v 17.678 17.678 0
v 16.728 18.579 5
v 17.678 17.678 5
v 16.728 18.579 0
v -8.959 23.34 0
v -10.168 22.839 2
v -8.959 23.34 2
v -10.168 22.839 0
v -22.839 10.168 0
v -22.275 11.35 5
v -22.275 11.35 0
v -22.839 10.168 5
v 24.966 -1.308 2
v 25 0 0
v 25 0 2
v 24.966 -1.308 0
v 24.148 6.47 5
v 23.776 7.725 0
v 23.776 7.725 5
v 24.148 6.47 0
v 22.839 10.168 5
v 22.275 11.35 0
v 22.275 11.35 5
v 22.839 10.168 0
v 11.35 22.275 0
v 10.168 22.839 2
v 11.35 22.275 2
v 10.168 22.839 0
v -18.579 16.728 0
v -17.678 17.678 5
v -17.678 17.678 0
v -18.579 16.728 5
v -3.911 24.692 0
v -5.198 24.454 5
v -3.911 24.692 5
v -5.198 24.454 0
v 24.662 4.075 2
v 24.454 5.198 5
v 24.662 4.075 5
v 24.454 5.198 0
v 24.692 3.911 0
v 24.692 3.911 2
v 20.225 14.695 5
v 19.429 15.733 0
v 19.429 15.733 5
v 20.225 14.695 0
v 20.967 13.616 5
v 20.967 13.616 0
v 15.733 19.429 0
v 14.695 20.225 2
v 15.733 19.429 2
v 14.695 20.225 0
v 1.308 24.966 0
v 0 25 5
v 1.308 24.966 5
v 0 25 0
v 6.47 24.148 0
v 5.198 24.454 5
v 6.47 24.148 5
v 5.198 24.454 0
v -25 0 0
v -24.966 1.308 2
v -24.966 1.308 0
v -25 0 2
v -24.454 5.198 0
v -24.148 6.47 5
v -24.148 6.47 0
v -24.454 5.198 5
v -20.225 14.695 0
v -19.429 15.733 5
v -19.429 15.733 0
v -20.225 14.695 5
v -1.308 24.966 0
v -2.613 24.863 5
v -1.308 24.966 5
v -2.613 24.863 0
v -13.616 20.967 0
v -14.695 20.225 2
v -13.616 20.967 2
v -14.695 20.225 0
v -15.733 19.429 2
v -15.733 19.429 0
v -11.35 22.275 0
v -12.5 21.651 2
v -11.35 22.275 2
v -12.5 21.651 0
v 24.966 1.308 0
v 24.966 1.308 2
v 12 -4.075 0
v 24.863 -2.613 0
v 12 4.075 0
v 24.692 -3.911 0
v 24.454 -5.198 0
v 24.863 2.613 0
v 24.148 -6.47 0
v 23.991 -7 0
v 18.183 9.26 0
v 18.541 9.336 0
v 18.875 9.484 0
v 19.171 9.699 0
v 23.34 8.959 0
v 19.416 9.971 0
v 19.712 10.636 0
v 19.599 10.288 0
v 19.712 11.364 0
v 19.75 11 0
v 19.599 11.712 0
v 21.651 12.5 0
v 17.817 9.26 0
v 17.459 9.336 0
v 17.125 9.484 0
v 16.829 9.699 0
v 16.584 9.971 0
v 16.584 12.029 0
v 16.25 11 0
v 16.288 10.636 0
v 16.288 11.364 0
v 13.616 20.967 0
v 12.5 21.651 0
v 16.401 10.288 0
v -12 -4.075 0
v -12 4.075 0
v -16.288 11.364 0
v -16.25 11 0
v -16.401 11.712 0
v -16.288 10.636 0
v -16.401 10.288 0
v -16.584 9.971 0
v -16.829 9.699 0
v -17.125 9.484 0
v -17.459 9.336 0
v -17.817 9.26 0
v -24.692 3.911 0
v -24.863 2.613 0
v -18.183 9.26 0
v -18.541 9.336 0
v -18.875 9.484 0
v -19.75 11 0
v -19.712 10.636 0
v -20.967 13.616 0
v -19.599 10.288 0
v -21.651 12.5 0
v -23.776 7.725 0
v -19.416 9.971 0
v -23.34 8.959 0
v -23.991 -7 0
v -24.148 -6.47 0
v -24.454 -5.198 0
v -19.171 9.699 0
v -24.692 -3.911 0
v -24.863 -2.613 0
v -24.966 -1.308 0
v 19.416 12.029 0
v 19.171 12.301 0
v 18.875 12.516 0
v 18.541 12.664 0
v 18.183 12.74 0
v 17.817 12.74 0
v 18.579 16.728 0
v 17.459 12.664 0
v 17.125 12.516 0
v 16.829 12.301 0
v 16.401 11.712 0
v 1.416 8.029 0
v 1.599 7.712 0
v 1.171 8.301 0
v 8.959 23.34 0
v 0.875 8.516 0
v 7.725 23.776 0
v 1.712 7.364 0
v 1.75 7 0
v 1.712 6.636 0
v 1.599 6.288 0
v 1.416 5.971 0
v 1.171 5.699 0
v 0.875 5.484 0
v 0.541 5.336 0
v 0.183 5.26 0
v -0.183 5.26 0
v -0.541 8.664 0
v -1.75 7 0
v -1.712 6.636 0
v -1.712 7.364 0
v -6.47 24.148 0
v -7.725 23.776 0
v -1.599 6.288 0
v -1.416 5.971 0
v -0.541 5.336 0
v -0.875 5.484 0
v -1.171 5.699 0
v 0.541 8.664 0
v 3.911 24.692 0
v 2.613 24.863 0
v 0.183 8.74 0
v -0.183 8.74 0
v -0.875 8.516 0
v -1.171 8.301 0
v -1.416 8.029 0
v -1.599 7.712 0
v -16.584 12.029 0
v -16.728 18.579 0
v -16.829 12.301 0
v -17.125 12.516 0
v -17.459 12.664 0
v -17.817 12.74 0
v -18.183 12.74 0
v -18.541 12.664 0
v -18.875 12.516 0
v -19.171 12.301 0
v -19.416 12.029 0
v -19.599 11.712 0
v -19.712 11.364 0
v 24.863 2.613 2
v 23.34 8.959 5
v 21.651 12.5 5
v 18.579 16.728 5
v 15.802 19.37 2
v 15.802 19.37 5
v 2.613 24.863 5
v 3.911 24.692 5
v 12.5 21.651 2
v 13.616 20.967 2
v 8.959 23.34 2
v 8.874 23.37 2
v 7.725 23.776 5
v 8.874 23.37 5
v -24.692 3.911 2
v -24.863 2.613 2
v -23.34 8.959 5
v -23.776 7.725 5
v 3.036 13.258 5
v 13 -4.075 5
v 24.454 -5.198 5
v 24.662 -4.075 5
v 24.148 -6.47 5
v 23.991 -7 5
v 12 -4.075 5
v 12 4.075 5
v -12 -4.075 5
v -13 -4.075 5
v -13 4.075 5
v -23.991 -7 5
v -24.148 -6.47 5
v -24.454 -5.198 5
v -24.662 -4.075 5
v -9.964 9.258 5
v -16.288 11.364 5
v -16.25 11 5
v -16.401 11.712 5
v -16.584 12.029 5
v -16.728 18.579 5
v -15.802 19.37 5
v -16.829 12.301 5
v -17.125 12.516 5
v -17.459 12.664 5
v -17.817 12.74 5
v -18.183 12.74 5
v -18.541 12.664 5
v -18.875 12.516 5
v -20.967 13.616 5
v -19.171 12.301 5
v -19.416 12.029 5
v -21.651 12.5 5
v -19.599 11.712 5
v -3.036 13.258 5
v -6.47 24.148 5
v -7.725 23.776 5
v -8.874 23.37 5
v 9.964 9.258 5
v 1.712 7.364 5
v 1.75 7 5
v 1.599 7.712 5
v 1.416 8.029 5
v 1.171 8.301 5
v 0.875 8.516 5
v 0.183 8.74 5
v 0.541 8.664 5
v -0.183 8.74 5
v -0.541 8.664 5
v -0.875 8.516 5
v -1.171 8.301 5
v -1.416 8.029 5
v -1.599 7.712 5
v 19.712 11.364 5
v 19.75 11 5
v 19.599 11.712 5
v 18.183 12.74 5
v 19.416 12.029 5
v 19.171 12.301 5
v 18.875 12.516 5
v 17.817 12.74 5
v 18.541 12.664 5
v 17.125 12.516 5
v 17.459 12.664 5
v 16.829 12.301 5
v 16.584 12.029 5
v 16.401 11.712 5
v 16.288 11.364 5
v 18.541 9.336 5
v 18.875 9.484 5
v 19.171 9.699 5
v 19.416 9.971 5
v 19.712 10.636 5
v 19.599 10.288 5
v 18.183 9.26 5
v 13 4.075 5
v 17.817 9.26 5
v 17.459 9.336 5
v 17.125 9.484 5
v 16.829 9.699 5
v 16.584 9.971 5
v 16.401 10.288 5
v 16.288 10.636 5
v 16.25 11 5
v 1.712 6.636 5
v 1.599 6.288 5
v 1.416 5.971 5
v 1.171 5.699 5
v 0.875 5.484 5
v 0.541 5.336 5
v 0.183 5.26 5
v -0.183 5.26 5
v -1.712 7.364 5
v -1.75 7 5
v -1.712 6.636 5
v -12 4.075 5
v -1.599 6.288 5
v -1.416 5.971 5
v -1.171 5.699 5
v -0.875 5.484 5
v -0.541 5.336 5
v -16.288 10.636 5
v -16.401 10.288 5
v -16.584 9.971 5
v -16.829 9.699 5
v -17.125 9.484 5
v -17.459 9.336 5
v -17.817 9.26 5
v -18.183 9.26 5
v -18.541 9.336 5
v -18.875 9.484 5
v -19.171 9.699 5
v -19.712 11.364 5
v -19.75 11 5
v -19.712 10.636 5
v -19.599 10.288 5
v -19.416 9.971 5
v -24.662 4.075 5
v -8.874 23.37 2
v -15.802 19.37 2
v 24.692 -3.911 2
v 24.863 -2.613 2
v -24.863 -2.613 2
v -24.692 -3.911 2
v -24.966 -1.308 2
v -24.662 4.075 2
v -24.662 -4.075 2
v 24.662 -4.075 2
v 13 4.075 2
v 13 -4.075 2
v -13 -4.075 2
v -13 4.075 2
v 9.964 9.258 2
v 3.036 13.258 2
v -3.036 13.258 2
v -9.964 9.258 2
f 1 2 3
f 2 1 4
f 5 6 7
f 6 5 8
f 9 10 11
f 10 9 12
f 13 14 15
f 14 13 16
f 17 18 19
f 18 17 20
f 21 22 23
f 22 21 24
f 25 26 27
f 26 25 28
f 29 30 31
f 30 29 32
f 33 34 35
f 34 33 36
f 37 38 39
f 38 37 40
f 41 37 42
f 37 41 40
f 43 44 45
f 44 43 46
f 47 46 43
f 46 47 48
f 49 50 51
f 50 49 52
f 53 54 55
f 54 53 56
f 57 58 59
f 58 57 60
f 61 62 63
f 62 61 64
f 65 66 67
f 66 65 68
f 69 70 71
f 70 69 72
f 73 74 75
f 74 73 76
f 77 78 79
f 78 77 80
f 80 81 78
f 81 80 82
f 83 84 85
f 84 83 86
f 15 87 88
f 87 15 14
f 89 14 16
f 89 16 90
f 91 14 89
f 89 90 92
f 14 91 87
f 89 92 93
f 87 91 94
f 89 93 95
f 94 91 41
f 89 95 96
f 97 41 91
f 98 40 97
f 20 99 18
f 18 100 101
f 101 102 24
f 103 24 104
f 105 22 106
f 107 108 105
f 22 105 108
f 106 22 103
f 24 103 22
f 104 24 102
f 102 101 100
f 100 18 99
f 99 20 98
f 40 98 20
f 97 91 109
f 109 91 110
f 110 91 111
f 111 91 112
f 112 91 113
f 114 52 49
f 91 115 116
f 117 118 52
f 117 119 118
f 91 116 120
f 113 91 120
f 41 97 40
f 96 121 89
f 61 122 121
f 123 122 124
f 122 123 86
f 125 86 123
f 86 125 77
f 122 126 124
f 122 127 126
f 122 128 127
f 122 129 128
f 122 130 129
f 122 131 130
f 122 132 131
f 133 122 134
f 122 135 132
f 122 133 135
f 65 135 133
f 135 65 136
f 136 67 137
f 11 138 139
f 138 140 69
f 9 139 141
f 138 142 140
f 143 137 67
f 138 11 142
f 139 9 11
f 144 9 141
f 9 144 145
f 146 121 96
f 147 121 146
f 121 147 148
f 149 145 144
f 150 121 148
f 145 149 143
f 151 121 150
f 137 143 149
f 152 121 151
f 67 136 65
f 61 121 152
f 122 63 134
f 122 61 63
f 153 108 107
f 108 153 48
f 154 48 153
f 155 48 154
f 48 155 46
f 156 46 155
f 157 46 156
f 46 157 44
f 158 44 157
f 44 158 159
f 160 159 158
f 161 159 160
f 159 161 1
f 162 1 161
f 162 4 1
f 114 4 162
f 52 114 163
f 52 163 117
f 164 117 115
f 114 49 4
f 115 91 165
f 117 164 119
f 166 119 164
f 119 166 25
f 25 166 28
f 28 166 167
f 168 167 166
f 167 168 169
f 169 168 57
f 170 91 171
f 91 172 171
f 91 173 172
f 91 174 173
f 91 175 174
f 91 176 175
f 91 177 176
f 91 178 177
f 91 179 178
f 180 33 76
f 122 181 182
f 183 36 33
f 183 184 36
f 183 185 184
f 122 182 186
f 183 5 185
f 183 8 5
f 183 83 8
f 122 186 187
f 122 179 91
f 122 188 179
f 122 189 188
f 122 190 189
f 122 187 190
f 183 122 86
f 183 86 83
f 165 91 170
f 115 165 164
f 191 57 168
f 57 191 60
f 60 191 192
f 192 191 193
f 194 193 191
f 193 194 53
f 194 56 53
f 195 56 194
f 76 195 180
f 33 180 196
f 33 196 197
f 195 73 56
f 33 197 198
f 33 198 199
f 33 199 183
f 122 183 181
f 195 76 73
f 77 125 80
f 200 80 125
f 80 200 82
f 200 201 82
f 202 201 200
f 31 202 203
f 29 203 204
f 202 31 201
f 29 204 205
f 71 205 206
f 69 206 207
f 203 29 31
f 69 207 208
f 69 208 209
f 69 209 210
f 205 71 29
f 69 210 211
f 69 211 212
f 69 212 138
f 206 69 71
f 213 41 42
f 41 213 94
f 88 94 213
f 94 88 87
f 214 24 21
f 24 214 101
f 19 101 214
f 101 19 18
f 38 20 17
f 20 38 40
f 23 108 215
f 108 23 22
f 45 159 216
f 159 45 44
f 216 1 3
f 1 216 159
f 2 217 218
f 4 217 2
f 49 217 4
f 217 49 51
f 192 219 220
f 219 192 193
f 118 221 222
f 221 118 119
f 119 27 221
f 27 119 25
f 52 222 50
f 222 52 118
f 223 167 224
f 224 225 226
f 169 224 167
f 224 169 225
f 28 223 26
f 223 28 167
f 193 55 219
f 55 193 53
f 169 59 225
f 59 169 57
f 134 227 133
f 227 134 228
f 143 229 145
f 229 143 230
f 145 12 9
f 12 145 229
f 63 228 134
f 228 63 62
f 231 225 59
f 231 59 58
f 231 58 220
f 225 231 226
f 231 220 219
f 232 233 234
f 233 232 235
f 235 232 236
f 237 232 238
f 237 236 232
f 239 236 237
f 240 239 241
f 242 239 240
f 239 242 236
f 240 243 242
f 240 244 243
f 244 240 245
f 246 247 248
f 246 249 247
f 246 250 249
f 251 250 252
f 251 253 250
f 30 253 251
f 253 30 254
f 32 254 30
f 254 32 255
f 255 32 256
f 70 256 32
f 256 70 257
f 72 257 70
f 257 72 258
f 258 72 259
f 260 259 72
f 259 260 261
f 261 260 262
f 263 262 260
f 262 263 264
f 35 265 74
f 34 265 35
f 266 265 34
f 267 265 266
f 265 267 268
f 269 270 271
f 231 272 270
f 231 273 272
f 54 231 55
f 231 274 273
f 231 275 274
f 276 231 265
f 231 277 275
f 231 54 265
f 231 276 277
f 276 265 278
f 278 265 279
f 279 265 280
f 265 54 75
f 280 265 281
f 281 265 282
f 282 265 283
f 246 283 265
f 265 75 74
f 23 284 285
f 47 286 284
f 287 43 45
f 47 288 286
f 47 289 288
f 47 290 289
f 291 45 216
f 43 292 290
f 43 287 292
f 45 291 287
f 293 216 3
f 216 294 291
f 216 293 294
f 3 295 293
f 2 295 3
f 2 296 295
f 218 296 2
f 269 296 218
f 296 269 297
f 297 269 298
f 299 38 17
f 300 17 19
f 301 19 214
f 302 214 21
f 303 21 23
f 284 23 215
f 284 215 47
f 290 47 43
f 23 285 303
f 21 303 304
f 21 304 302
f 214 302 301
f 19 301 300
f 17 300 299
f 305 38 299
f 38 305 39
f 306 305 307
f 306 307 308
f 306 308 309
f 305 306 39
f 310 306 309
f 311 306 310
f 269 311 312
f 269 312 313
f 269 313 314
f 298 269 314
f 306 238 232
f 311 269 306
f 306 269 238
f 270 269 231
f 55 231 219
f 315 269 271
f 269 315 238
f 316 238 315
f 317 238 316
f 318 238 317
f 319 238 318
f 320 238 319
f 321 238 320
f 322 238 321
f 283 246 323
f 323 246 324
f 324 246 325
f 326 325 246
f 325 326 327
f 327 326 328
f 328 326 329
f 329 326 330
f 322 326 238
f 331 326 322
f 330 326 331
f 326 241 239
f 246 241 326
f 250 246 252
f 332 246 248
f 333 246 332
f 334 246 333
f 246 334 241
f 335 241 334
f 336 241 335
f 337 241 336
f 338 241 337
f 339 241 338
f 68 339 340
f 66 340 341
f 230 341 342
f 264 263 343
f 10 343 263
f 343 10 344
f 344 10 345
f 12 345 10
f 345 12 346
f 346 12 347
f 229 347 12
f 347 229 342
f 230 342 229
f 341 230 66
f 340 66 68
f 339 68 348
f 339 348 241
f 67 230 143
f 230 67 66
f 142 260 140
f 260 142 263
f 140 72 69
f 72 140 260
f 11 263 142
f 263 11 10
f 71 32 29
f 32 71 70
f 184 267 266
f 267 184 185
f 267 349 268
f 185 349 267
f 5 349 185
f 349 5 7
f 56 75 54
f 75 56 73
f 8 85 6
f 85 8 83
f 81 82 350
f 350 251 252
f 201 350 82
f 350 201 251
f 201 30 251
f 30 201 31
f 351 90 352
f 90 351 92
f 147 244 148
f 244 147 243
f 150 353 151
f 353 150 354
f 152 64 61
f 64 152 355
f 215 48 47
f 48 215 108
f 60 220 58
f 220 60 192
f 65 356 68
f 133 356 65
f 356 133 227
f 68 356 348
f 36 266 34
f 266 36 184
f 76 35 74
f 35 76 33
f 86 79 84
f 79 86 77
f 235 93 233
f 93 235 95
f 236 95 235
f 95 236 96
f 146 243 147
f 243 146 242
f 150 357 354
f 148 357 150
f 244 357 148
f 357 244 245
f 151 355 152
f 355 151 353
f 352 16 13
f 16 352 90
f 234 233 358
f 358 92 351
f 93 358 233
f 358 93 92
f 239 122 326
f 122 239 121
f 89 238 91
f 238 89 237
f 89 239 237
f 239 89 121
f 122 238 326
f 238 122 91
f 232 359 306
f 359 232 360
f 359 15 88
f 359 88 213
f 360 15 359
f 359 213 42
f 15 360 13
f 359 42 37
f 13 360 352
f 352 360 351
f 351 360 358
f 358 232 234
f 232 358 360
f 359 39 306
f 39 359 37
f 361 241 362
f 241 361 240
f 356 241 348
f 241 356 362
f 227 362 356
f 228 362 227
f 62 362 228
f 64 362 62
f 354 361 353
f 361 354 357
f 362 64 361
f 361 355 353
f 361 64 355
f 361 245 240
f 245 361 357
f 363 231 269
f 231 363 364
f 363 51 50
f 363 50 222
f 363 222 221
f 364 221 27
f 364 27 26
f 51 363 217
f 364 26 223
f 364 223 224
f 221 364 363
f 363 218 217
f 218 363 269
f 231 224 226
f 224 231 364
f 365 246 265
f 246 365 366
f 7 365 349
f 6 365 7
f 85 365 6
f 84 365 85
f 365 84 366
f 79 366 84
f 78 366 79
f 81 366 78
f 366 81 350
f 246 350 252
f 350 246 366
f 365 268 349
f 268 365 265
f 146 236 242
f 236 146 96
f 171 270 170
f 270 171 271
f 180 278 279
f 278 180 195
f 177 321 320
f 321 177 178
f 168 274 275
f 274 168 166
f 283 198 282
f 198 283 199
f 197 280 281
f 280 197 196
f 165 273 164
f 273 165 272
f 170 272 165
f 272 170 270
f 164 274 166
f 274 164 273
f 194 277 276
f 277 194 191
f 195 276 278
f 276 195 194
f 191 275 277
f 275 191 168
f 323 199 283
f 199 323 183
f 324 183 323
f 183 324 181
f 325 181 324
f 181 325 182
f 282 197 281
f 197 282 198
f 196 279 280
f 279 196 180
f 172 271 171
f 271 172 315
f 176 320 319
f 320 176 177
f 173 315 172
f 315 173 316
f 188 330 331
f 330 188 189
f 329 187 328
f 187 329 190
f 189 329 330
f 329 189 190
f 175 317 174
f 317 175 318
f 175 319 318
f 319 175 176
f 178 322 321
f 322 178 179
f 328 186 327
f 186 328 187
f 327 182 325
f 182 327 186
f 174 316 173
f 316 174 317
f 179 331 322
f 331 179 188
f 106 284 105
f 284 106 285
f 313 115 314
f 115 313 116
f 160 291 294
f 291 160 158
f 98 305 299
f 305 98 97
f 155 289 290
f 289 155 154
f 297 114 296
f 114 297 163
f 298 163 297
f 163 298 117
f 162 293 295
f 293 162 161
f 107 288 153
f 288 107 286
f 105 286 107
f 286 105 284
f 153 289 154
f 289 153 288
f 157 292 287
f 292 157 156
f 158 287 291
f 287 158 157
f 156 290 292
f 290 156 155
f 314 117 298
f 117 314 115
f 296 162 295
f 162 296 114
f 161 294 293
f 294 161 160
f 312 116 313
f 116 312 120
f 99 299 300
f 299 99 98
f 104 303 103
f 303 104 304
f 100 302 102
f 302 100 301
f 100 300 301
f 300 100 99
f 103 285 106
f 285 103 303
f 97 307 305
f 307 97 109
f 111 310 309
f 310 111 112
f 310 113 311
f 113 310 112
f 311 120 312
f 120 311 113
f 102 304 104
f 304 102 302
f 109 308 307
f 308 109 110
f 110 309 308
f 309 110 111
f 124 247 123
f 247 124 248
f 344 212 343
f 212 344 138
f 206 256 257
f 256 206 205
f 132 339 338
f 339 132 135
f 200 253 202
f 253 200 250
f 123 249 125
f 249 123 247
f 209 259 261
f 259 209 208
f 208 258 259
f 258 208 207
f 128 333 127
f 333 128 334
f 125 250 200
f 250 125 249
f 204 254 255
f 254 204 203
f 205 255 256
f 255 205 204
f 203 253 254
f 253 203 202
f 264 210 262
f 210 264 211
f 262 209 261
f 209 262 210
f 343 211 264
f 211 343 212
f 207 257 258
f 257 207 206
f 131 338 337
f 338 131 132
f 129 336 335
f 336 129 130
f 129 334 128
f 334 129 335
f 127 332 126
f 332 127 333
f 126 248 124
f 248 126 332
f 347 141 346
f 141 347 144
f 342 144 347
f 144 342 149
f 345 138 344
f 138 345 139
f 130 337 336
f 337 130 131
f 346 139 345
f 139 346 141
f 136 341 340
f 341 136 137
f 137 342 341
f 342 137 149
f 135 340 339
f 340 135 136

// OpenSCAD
difference(){
cylinder(d=50,h=5,$fn=120);
cube([24,8.15,12],center=true);
translate([25,0,8])cube([24,8.15,12],center=true);
translate([-25,0,8])cube([24,8.15,12],center=true);
rotate([0,0,60])translate([25,0,8])
cube([24,8,12],center=true);
rotate([0,0,-60])translate([-25,0,8])
cube([24,8,12],center=true);
translate([0,-31,0])cube([54,48,12],center=true);
translate([0,7,-1])cylinder(d=3.5,h=10,$fn=30);
translate([18,11,-1])cylinder(d=3.5,h=10,$fn=30);
translate([-18,11,-1])cylinder(d=3.5,h=10,$fn=30);
}
